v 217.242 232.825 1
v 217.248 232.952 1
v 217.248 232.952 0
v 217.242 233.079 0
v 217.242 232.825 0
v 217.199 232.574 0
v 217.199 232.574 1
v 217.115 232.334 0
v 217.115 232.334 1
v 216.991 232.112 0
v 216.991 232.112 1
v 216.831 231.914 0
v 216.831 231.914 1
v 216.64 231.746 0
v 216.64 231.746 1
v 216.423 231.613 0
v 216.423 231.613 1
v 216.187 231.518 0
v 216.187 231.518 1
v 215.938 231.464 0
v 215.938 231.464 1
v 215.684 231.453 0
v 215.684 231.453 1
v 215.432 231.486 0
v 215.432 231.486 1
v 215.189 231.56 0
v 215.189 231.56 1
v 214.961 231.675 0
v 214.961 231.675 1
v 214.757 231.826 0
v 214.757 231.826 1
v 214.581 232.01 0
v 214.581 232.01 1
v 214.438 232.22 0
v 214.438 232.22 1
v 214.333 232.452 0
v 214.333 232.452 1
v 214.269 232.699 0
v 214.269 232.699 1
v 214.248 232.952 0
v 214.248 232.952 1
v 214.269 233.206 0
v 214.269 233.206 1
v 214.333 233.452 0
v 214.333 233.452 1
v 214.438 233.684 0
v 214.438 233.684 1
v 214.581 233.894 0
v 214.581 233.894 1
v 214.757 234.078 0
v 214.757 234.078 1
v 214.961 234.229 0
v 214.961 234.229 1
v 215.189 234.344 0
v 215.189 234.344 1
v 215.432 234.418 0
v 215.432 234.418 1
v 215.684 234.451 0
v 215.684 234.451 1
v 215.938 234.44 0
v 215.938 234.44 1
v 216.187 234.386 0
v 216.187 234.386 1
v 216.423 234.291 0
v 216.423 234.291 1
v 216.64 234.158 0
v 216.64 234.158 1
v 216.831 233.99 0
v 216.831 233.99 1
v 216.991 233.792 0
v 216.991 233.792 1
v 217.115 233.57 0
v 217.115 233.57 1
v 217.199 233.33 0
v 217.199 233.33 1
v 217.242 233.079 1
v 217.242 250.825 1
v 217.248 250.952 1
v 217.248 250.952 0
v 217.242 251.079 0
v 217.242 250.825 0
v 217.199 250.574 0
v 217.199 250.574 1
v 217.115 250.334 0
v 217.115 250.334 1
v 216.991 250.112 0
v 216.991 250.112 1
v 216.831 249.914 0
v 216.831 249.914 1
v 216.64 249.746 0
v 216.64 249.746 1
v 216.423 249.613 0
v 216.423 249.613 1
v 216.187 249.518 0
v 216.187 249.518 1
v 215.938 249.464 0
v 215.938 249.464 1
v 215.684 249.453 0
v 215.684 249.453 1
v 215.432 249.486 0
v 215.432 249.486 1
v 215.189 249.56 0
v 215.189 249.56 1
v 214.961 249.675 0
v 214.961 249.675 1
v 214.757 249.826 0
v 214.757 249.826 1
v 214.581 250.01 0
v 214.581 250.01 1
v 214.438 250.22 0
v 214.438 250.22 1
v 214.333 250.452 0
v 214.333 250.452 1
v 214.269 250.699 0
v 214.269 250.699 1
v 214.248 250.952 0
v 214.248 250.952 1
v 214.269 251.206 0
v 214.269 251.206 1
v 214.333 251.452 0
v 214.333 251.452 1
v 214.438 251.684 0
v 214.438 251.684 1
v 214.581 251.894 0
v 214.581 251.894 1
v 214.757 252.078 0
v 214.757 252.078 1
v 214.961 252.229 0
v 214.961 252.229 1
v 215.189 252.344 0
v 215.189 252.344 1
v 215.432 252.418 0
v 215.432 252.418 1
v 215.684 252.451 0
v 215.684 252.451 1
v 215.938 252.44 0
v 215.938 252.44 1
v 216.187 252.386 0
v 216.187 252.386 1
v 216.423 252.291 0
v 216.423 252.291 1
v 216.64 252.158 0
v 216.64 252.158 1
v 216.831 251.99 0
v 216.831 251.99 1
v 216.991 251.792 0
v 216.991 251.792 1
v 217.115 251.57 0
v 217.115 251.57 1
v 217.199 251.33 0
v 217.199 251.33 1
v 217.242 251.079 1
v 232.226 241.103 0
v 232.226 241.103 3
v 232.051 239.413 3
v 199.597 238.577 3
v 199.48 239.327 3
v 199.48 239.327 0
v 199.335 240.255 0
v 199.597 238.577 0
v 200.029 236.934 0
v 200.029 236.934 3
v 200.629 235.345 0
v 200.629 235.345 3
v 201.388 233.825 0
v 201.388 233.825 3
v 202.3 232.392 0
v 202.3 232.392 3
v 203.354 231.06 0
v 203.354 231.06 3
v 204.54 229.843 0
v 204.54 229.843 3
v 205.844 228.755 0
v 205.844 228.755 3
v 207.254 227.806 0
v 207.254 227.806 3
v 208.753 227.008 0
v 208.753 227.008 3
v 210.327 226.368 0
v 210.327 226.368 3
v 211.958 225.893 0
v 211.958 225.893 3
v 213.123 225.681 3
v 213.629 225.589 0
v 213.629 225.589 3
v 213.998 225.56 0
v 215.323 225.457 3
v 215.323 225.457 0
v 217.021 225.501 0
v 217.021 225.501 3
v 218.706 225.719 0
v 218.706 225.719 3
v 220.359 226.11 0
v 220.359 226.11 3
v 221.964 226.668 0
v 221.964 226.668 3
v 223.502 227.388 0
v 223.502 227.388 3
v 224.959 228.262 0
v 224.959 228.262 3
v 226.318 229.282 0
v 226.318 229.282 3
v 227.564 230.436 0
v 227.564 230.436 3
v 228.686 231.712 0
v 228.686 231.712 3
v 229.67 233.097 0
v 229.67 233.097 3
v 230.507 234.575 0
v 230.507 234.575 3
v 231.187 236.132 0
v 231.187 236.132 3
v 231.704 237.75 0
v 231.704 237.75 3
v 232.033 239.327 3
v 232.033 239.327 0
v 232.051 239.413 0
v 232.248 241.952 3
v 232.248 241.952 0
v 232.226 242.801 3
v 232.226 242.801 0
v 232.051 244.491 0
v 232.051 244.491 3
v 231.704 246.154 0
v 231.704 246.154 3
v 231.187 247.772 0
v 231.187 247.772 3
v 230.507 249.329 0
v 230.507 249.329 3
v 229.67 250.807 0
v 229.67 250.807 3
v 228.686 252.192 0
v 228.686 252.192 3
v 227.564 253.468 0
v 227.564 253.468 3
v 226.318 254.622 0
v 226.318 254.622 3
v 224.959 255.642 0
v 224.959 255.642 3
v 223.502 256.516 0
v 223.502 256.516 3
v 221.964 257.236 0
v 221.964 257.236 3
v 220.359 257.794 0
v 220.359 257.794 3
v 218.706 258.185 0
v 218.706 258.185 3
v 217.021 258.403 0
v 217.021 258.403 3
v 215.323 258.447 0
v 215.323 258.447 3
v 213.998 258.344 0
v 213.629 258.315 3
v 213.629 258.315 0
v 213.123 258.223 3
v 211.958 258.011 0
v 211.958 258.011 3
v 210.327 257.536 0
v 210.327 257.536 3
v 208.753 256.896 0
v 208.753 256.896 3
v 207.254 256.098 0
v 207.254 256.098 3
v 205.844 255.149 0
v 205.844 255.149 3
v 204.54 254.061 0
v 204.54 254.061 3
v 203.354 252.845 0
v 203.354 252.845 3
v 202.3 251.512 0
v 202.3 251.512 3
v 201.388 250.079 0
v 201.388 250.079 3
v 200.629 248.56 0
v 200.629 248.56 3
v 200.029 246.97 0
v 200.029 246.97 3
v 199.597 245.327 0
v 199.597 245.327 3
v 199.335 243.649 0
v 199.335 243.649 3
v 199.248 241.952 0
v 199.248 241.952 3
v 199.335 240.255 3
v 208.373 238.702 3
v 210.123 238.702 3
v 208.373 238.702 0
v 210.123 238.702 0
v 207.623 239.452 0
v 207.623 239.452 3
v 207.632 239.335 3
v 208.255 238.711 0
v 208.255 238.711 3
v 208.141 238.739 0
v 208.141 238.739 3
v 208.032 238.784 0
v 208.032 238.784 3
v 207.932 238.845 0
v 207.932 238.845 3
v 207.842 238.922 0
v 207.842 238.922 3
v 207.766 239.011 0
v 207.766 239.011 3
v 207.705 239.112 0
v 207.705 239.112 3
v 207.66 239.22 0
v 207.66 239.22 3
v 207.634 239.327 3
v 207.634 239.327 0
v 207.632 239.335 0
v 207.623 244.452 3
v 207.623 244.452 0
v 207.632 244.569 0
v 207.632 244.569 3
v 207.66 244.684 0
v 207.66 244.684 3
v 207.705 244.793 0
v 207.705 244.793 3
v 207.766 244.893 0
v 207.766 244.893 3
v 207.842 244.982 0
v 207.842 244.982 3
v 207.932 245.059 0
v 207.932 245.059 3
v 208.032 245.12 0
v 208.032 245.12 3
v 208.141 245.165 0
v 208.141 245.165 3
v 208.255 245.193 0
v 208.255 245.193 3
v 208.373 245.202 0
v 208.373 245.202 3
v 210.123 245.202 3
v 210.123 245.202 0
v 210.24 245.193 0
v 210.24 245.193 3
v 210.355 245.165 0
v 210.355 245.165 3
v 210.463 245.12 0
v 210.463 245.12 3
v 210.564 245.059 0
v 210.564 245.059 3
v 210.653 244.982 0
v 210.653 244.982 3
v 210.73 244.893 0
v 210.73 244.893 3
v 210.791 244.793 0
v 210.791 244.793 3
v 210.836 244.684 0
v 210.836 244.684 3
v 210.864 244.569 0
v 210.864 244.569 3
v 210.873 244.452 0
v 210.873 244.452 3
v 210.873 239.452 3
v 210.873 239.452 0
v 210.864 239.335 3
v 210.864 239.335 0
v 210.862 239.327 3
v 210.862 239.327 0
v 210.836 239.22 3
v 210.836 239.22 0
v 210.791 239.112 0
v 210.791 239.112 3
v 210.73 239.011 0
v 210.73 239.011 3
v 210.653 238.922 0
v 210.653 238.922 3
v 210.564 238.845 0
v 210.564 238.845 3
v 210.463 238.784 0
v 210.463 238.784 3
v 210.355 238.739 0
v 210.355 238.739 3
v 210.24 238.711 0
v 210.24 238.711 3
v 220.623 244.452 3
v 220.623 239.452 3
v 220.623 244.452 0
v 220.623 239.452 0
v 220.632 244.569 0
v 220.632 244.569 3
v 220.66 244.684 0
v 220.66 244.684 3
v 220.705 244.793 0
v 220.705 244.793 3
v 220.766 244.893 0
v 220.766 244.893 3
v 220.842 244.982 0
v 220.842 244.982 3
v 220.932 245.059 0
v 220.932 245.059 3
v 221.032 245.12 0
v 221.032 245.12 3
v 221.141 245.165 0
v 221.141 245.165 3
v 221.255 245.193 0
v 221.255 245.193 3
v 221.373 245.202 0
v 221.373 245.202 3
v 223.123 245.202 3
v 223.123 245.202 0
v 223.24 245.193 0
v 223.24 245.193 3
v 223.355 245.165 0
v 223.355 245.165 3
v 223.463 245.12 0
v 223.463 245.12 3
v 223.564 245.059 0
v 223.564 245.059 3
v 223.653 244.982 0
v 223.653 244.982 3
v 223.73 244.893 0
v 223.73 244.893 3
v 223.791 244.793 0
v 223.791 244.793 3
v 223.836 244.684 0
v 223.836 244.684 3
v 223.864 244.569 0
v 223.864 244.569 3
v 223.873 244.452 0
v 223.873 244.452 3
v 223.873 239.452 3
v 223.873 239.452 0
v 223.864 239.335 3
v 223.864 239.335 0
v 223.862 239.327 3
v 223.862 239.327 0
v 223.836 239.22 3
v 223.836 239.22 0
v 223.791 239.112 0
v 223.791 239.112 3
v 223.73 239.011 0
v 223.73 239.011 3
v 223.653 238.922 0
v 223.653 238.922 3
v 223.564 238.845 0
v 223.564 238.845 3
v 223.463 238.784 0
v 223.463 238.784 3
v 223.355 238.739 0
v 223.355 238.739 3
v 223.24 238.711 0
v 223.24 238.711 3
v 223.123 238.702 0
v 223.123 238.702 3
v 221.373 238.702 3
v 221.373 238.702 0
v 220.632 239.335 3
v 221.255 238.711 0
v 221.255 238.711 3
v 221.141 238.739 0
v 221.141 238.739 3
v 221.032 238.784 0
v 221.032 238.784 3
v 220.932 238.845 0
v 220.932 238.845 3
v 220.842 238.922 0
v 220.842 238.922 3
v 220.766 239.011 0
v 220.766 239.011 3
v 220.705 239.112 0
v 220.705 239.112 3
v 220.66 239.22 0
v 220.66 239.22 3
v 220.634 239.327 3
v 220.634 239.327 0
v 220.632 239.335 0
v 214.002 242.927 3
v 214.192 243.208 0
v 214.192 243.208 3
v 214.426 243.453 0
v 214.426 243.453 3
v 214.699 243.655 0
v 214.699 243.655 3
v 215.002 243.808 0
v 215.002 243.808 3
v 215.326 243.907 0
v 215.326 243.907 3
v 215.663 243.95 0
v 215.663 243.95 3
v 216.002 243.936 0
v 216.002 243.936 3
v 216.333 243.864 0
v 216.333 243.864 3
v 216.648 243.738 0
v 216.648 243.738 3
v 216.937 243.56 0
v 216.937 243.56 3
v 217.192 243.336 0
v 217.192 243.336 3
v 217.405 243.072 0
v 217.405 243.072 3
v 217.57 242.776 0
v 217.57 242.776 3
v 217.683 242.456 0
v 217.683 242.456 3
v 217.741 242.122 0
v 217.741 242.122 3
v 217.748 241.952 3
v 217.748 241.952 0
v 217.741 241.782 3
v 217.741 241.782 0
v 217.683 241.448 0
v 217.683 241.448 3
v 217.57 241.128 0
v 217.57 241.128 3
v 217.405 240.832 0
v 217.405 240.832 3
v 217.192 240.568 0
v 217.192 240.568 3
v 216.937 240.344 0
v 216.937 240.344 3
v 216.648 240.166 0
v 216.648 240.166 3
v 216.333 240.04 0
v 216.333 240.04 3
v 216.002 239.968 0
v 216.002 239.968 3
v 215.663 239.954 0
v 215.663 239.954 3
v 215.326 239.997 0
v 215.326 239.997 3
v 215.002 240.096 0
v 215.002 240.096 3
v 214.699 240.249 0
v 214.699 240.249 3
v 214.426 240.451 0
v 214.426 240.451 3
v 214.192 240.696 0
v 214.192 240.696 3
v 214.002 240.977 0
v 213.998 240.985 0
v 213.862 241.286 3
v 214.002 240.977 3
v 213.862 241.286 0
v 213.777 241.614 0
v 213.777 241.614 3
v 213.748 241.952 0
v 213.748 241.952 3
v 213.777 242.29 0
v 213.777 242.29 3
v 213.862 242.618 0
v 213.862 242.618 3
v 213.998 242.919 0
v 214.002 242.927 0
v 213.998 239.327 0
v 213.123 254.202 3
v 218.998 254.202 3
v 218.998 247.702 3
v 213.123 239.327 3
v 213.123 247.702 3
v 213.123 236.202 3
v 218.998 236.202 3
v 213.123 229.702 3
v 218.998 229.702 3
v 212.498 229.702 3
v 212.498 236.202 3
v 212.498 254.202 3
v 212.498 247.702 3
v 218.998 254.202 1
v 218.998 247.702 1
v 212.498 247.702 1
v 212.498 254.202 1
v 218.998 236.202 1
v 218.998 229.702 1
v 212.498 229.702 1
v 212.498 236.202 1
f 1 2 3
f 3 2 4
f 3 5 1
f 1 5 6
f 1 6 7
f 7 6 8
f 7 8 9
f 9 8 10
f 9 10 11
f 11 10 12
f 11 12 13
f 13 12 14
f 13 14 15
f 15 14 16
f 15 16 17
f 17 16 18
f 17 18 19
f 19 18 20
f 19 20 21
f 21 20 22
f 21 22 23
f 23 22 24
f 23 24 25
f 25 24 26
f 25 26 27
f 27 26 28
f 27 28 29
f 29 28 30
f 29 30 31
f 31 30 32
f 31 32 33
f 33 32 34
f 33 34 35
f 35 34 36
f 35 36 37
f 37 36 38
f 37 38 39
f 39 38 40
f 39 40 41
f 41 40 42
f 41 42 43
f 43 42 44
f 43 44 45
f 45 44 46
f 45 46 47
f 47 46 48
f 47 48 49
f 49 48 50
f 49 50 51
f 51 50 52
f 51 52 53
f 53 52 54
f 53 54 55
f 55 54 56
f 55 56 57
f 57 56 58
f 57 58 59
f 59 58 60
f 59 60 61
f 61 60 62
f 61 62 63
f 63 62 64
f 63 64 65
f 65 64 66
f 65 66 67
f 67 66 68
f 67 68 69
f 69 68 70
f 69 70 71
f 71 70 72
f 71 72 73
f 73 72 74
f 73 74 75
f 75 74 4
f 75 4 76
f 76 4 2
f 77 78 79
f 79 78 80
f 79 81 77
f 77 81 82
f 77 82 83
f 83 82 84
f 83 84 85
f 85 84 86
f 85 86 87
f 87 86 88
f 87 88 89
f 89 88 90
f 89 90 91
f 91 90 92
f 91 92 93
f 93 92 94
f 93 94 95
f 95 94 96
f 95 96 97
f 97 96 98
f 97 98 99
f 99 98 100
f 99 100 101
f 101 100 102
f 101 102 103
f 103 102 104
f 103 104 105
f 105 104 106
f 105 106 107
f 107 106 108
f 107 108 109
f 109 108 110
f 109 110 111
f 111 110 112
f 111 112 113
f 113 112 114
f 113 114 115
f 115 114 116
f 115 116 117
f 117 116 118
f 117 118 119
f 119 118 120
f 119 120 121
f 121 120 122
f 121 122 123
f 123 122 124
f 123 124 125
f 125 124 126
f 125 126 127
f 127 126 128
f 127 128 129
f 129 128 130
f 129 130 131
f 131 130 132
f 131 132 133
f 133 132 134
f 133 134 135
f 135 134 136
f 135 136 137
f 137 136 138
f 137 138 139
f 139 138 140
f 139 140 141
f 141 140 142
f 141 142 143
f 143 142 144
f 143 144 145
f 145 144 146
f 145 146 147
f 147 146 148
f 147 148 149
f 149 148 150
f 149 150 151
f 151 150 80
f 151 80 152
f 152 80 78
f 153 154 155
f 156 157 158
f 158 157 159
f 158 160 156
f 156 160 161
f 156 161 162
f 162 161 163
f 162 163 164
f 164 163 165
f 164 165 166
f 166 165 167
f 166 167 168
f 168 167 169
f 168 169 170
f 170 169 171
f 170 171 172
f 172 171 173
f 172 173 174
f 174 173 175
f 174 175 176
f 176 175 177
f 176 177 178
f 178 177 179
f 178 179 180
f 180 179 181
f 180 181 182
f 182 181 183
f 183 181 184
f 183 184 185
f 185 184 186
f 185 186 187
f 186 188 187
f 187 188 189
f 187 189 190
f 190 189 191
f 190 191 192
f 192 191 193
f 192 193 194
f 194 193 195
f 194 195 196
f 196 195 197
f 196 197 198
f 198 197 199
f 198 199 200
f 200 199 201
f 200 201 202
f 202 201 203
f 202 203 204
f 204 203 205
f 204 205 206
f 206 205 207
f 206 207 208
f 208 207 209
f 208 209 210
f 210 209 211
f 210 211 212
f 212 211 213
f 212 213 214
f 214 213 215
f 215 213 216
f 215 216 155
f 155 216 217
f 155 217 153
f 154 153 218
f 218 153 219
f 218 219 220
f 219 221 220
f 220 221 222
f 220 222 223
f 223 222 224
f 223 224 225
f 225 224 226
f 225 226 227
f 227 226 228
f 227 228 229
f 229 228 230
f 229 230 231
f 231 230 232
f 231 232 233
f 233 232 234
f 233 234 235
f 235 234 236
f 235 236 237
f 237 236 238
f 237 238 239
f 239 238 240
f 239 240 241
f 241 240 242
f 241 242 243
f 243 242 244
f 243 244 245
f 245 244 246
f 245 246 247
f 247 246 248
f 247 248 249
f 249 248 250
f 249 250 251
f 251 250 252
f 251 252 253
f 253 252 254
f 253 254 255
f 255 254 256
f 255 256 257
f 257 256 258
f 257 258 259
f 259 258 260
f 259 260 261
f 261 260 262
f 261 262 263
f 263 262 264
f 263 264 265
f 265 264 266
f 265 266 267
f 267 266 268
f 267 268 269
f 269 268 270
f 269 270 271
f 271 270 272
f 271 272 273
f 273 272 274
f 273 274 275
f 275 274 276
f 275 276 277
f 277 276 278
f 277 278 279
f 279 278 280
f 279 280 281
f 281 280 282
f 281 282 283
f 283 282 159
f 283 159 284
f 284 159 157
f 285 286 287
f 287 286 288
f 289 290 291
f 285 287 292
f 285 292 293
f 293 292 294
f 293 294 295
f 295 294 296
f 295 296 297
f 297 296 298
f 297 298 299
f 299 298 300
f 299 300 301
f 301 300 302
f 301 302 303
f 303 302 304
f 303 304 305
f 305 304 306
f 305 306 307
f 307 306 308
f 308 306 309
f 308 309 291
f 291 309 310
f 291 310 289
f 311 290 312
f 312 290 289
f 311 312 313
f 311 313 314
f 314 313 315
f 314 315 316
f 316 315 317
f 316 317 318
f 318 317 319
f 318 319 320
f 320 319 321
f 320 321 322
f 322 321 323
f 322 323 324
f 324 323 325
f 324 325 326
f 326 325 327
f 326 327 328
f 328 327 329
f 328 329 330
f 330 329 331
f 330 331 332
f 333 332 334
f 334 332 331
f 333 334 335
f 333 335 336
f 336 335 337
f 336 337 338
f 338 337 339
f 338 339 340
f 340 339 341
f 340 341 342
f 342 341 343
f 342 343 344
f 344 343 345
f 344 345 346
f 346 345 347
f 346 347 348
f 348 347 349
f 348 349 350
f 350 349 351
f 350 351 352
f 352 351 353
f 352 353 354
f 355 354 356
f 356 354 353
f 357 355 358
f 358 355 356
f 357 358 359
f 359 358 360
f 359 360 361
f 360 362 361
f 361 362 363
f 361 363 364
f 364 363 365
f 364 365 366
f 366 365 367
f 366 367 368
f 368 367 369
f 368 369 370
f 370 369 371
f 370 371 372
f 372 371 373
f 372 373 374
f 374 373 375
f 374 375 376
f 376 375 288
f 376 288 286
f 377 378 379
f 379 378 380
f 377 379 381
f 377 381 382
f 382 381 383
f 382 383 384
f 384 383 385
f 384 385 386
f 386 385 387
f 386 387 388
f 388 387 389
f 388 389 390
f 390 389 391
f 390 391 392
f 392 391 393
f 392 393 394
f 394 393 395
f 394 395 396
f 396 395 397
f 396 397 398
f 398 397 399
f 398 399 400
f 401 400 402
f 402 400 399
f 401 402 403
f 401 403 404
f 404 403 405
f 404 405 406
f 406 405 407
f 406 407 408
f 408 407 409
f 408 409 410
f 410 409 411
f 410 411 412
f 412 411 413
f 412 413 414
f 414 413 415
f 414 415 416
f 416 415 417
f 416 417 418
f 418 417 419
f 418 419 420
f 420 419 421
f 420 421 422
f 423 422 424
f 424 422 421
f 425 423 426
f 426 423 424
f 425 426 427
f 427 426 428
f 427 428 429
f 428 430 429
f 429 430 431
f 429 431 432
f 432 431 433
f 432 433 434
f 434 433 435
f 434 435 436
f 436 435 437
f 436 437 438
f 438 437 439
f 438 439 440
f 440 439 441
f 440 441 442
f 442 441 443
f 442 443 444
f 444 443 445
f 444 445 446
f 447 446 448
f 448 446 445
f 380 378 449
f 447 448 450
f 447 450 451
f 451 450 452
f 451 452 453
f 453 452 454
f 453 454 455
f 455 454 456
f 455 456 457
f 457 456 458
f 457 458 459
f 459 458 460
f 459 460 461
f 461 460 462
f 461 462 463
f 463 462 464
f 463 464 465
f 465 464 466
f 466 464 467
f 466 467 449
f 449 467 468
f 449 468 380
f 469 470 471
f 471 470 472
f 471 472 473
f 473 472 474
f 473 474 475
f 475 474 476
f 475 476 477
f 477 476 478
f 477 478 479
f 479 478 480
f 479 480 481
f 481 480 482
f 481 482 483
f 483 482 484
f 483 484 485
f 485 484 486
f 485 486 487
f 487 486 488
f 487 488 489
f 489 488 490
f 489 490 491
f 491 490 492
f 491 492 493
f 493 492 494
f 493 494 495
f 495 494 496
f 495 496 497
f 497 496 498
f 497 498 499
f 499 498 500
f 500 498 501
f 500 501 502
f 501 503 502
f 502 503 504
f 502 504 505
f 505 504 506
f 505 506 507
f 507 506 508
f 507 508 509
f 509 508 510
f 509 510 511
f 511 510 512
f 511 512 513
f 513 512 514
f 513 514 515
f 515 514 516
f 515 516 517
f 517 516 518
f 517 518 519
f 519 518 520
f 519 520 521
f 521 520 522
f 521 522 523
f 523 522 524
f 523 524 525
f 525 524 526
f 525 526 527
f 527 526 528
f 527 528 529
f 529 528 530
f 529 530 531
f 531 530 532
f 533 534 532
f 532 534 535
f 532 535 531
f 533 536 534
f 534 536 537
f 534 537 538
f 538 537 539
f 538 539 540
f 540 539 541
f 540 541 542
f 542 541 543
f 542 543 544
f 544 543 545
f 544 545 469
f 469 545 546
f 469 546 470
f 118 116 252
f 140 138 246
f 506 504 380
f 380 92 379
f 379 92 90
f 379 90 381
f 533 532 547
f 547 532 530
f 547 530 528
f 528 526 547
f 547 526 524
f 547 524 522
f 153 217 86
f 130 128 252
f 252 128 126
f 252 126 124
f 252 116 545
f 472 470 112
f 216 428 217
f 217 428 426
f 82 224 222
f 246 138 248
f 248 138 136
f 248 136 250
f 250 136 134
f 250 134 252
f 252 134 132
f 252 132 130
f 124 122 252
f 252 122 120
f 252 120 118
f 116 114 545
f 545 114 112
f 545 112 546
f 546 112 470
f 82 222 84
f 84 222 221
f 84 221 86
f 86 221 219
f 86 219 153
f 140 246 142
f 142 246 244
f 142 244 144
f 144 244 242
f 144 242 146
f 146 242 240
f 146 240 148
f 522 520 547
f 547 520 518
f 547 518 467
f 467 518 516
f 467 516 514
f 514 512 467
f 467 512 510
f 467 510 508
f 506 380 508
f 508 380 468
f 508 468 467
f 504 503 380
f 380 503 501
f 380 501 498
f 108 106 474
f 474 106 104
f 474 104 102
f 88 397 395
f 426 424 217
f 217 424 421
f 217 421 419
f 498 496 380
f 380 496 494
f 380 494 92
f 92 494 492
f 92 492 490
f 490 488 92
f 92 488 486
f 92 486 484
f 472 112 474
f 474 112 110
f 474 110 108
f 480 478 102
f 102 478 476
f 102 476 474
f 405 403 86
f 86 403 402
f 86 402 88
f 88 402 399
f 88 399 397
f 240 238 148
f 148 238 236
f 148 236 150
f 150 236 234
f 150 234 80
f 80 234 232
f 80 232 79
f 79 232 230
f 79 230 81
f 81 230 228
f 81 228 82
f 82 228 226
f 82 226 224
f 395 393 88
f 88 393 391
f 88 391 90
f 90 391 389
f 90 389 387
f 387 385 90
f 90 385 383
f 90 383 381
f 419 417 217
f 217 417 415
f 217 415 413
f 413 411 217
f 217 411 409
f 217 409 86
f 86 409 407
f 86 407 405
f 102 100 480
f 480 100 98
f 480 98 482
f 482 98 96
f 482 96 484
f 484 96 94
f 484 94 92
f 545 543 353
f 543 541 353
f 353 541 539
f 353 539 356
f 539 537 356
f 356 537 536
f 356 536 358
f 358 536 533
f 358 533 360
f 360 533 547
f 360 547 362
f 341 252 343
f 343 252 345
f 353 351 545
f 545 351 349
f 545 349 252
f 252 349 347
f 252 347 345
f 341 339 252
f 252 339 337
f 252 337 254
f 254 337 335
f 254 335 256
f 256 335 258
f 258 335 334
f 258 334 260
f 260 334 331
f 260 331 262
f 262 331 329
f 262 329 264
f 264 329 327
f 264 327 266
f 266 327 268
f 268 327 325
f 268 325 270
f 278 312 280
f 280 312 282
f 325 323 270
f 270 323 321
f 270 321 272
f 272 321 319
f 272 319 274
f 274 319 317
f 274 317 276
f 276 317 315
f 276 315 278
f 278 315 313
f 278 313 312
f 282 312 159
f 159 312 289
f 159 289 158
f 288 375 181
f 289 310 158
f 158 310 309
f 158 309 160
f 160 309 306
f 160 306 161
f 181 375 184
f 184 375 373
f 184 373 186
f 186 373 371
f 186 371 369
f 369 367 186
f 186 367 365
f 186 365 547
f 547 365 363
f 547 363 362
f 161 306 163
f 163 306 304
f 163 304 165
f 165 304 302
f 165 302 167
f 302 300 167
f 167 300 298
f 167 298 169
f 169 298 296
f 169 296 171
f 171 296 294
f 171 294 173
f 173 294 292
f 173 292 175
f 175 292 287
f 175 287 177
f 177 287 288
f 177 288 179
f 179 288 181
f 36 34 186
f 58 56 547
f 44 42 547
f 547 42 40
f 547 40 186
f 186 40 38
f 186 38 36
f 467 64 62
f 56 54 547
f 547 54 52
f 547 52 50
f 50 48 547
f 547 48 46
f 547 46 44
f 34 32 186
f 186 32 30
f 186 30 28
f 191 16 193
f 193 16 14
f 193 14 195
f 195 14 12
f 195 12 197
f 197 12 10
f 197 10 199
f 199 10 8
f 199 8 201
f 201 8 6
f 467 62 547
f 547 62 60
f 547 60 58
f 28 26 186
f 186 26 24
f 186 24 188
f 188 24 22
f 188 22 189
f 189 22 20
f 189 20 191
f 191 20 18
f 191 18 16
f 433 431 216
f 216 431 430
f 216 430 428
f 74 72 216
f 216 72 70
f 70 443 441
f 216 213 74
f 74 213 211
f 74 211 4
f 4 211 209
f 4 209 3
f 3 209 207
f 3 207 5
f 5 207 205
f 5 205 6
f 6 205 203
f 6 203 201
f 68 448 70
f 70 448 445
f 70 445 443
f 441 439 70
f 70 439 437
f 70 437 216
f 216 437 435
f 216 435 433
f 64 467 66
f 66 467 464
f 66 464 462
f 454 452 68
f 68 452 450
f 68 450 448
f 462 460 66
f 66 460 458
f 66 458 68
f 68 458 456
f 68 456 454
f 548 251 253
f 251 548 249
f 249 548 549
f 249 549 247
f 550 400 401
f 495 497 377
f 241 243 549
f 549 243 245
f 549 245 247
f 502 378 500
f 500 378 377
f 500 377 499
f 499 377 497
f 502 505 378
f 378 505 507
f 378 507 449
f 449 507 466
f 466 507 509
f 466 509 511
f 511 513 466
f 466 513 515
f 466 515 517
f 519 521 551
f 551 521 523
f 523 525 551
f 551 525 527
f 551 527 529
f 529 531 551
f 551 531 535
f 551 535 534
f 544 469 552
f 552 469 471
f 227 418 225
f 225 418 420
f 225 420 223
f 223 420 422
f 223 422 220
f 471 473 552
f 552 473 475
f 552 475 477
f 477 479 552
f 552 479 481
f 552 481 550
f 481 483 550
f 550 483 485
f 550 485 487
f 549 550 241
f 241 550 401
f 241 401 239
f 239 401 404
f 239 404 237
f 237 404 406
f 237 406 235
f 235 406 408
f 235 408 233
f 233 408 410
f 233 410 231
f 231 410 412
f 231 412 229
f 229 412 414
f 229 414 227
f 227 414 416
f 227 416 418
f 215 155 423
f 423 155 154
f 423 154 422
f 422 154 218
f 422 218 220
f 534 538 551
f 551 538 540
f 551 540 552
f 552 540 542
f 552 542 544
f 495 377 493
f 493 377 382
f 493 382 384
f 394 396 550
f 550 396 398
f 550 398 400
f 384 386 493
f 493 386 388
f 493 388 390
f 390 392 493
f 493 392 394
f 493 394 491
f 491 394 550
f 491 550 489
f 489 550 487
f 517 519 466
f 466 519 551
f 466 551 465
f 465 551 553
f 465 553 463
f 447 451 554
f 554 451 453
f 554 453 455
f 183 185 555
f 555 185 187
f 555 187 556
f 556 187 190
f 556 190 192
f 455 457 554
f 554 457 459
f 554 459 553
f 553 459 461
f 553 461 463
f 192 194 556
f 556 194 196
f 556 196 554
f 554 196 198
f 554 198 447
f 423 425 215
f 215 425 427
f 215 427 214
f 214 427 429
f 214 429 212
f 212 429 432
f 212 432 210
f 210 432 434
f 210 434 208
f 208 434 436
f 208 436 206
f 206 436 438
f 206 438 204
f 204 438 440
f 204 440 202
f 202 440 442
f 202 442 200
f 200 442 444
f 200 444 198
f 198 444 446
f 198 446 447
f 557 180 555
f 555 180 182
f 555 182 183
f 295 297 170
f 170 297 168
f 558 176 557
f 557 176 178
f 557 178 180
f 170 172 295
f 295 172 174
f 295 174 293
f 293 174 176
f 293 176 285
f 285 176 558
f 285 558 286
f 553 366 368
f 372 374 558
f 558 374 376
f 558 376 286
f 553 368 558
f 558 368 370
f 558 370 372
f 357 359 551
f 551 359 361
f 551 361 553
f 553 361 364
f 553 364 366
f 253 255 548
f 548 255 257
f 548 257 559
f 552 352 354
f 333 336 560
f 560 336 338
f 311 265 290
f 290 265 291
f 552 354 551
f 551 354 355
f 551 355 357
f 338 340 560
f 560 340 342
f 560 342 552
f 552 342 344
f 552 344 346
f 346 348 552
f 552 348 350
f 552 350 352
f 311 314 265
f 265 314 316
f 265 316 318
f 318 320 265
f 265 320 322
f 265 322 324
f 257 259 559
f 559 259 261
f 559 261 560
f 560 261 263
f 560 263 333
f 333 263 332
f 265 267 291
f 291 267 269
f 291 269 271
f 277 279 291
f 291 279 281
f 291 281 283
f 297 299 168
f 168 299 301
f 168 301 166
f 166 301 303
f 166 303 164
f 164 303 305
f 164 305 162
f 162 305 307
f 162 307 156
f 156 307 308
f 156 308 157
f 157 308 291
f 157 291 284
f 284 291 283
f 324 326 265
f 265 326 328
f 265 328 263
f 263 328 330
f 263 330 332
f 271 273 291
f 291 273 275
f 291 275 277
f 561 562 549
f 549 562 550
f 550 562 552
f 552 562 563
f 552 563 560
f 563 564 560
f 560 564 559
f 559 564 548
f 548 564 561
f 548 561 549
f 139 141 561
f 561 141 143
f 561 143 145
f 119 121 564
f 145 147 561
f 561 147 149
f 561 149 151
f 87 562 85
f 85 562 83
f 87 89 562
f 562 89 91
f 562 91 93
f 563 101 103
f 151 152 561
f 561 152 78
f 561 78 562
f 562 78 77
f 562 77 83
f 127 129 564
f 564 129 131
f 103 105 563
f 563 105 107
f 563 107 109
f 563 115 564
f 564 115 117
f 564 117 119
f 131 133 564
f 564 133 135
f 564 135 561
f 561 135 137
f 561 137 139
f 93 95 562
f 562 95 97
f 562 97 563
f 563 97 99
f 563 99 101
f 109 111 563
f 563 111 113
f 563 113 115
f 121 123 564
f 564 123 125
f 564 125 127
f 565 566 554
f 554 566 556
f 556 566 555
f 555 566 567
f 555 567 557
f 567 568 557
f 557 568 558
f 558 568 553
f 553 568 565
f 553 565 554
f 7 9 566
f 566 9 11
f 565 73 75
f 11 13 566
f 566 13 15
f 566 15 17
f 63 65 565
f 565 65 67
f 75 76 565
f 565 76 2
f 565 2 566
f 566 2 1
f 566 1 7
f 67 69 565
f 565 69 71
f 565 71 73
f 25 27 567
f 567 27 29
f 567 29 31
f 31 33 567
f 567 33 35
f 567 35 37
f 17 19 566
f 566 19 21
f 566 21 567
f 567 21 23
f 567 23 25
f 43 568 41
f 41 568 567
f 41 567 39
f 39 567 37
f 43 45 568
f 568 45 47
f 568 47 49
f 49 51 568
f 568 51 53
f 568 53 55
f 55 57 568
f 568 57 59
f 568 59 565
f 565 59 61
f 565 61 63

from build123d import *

# Parameters (mm, degrees)
MODEL_R                 = 16.5
MODEL_R_2               = 1.5
MODEL_R_3               = 2
SALIENTE_EXTRUIR1_DEPTH = 3
CROQUIS2_W              = 6.5
CROQUIS2_H              = 6.5
CROQUIS2_W_2            = 6.500000001
CORTAR_EXTRUIR1_DEPTH   = 2


with BuildPart() as part:
    # Model → Saliente-Extruir1 (new body)
    with BuildSketch(Plane.XY):
        with Locations((215.747807914, 241.952019993)):
            Circle(MODEL_R)
        with Locations((215.747807914, 250.952019993)):
            Circle(MODEL_R_2, mode=Mode.SUBTRACT)
        with BuildLine():
            ThreePointArc((207.622807913, 244.452019993), (207.842477828, 244.982350079), (208.372807913, 245.202019993))
            Line((208.372807913, 245.202019993), (210.122807913, 245.202019993))
            ThreePointArc((210.122807913, 245.202019993), (210.653137999, 244.982350079), (210.872807913, 244.452019993))
            Line((210.872807913, 244.452019993), (210.872807913, 239.452019993))
            ThreePointArc((210.872807914, 239.452019993), (210.653137999, 238.921689907), (210.122807913, 238.702019993))
            Line((210.122807913, 238.702019993), (208.372807913, 238.702019993))
            ThreePointArc((208.372807913, 238.702019993), (207.842477828, 238.921689907), (207.622807913, 239.452019993))
            Line((207.622807913, 239.452019993), (207.622807913, 244.452019993))
        make_face(mode=Mode.SUBTRACT)
        with BuildLine():
            Line((221.372807913, 245.202019993), (223.122807913, 245.202019993))
            ThreePointArc((223.122807913, 245.202019993), (223.653137999, 244.982350079), (223.872807913, 244.452019993))
            Line((223.872807913, 244.452019993), (223.872807913, 239.452019993))
            ThreePointArc((223.872807914, 239.452019993), (223.653137999, 238.921689907), (223.122807913, 238.702019993))
            Line((223.122807913, 238.702019993), (221.372807913, 238.702019993))
            ThreePointArc((221.372807913, 238.702019993), (220.842477828, 238.921689907), (220.622807913, 239.452019993))
            Line((220.622807913, 239.452019993), (220.622807913, 244.452019993))
            ThreePointArc((220.622807913, 244.452019993), (220.842477828, 244.982350079), (221.372807913, 245.202019993))
        make_face(mode=Mode.SUBTRACT)
        with Locations((215.747807914, 241.952019993)):
            Circle(MODEL_R_3, mode=Mode.SUBTRACT)
        with Locations((215.747807914, 232.952019993)):
            Circle(MODEL_R_2, mode=Mode.SUBTRACT)
    extrude(amount=SALIENTE_EXTRUIR1_DEPTH)

    # Croquis2 → Cortar-Extruir1 (cut)
    with BuildSketch(Plane.XY.offset(3)):
        with Locations((215.747807914, 250.952019993)):
            Rectangle(CROQUIS2_W, CROQUIS2_H)
        with Locations((215.747807914, 232.952019993)):
            Rectangle(CROQUIS2_W_2, CROQUIS2_H)
    extrude(amount=-CORTAR_EXTRUIR1_DEPTH, mode=Mode.SUBTRACT)


solid = part.part
